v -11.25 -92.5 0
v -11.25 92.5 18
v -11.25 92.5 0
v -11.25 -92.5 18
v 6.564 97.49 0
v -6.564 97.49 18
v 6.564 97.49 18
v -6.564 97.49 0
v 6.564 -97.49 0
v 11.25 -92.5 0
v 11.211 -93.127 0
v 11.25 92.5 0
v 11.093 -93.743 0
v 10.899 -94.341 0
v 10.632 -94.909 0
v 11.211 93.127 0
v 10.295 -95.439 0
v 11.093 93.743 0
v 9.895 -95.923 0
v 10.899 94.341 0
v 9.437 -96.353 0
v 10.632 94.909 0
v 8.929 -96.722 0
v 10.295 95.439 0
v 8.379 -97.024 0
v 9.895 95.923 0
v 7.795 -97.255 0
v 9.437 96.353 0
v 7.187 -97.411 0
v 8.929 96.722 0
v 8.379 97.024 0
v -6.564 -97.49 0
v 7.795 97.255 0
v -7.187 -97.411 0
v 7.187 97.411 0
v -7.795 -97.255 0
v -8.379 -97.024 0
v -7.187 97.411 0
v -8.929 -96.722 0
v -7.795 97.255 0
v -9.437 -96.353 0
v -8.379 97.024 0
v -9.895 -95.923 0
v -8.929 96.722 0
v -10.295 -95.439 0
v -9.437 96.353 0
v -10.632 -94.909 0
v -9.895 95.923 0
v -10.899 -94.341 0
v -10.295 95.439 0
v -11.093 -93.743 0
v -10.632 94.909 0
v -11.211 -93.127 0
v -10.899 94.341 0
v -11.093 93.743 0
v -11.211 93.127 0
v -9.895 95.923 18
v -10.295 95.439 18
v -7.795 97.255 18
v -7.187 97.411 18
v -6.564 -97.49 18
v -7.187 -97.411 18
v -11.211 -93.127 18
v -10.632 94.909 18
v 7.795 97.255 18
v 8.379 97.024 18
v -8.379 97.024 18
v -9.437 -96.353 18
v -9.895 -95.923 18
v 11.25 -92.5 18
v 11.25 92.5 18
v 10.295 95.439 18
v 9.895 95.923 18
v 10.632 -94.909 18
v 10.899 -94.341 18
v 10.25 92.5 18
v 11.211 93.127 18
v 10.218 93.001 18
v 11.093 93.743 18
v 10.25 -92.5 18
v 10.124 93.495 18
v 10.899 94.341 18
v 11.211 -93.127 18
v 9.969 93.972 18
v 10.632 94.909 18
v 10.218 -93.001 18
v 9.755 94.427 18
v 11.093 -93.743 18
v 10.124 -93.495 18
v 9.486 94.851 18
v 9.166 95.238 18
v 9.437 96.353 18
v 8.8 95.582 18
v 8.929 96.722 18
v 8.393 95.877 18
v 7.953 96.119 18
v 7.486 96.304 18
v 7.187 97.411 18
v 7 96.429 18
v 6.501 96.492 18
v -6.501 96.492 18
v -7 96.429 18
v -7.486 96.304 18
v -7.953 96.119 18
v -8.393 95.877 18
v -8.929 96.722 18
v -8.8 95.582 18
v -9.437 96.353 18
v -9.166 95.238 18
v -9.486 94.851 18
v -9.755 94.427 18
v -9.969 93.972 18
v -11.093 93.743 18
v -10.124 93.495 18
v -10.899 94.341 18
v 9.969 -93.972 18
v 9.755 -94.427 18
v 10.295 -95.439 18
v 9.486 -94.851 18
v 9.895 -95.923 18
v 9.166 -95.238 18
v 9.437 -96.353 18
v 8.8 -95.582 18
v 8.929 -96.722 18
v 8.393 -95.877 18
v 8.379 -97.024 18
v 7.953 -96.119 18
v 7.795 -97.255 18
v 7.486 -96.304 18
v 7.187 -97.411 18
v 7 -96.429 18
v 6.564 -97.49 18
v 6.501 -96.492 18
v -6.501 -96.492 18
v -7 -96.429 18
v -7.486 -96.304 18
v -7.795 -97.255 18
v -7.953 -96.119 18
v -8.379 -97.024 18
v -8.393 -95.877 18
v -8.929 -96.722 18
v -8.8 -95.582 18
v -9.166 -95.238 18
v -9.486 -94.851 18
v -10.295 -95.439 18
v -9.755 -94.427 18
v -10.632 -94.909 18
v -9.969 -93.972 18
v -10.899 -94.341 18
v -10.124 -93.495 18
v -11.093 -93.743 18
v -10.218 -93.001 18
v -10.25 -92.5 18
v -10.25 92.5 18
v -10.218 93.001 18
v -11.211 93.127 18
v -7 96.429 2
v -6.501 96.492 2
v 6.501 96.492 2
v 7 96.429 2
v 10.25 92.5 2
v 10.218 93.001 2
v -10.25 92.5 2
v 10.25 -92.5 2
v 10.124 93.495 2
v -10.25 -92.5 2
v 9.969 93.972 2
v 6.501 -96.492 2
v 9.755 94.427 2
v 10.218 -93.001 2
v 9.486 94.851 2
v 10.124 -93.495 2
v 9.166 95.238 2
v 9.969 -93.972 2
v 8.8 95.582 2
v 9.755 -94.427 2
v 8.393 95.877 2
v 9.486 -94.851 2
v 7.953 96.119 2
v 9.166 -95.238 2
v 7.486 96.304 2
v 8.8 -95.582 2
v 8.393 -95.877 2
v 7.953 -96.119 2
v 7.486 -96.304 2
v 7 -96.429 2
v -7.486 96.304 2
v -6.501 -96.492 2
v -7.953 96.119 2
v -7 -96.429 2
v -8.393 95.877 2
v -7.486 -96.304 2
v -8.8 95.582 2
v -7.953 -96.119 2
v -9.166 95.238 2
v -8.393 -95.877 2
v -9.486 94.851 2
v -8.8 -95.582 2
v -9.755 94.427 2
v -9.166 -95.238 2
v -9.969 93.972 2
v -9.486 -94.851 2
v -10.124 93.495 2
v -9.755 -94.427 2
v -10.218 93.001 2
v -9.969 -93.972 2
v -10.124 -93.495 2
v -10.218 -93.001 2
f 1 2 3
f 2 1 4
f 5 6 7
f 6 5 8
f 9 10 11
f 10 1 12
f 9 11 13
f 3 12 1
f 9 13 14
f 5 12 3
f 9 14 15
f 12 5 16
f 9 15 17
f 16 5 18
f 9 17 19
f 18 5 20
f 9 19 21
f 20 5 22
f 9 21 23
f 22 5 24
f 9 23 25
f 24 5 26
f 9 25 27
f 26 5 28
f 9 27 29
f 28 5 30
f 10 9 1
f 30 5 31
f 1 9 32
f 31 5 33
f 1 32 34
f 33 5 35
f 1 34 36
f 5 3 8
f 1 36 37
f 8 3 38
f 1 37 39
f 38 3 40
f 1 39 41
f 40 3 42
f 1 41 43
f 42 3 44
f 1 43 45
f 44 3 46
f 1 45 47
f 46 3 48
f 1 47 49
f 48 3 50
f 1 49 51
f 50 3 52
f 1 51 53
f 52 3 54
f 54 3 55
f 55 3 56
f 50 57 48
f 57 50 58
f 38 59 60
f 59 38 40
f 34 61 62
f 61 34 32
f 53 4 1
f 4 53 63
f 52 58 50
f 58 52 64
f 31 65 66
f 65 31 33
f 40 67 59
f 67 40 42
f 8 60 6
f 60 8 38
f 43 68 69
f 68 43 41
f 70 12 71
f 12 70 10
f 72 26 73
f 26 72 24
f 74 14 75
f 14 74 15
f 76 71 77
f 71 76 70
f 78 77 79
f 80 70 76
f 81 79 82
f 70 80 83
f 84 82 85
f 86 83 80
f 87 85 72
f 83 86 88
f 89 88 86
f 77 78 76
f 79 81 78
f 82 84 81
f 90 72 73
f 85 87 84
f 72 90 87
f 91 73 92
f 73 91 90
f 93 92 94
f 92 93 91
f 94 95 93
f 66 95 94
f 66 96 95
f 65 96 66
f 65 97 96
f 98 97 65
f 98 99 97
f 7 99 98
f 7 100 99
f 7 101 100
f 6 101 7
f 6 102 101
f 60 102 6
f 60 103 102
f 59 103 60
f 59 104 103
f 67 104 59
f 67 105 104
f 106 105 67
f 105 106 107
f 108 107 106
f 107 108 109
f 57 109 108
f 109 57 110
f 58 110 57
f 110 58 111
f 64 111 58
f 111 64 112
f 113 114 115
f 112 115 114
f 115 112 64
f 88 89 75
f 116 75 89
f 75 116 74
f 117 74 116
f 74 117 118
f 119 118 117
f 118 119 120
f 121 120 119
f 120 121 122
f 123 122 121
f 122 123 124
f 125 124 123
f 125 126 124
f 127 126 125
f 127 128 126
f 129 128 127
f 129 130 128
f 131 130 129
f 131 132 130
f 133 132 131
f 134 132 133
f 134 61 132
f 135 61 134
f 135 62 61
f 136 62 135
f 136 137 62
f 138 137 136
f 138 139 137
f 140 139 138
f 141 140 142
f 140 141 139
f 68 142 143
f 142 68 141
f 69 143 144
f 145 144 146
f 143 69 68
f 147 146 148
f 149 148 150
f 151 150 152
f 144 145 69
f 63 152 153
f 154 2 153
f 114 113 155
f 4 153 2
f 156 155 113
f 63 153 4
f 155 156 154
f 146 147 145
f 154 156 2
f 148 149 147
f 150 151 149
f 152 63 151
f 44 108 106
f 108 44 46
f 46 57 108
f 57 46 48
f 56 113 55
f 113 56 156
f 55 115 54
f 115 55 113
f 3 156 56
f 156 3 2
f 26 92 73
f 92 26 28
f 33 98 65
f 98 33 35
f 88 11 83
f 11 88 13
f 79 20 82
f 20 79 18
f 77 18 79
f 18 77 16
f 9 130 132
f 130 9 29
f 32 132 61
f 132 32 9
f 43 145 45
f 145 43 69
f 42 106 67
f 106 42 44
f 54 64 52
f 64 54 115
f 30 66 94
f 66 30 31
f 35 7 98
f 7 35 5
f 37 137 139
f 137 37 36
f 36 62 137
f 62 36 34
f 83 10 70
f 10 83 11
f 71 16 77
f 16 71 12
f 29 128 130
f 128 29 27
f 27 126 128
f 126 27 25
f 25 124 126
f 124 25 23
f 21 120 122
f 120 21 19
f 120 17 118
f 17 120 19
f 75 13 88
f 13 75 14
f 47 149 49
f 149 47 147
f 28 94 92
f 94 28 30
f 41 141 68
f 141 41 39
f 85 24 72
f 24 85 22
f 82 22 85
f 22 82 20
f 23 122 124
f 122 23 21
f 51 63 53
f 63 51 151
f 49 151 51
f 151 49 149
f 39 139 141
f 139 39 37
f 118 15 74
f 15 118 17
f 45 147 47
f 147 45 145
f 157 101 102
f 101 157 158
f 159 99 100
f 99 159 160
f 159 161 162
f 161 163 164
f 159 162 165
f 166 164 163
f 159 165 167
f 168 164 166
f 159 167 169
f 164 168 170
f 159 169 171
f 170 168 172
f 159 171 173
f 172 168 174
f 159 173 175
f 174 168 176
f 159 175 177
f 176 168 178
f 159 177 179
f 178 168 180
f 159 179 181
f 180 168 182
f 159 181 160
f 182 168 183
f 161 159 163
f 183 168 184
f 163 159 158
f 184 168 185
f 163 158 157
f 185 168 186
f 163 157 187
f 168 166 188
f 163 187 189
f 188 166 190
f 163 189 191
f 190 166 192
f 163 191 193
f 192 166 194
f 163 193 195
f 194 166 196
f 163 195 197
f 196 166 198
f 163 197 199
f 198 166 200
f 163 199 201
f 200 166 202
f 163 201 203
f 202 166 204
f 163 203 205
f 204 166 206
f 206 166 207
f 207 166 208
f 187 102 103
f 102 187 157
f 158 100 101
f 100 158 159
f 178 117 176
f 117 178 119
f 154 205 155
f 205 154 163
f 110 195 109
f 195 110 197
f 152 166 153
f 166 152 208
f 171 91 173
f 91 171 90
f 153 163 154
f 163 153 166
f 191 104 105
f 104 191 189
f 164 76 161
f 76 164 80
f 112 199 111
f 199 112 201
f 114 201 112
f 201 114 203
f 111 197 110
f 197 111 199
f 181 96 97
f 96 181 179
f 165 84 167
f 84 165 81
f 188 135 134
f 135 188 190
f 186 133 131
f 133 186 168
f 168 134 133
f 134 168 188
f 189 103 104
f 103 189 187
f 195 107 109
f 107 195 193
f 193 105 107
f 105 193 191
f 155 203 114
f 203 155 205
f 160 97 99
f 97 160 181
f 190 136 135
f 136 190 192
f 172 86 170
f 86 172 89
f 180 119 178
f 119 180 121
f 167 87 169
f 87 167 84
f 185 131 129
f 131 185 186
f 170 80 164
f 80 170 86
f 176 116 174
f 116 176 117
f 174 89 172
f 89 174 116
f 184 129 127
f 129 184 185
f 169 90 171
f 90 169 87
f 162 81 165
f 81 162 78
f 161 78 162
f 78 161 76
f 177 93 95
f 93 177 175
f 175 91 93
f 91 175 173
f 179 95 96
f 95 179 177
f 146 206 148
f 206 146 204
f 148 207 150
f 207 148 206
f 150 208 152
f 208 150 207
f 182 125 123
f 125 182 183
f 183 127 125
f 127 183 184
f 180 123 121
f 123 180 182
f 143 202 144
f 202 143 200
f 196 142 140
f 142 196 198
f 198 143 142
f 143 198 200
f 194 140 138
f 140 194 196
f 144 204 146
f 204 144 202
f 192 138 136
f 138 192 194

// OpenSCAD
$fn = 50;


difference() {
	union() {
		hull() {
			translate(v = [-6.2500000000, 92.5000000000, 0]) {
				cylinder(h = 18, r = 5);
			}
			translate(v = [6.2500000000, 92.5000000000, 0]) {
				cylinder(h = 18, r = 5);
			}
			translate(v = [-6.2500000000, -92.5000000000, 0]) {
				cylinder(h = 18, r = 5);
			}
			translate(v = [6.2500000000, -92.5000000000, 0]) {
				cylinder(h = 18, r = 5);
			}
		}
	}
	union() {
		translate(v = [0, 0, 2]) {
			hull() {
				translate(v = [-6.2500000000, 92.5000000000, 0]) {
					cylinder(h = 16, r = 4);
				}
				translate(v = [6.2500000000, 92.5000000000, 0]) {
					cylinder(h = 16, r = 4);
				}
				translate(v = [-6.2500000000, -92.5000000000, 0]) {
					cylinder(h = 16, r = 4);
				}
				translate(v = [6.2500000000, -92.5000000000, 0]) {
					cylinder(h = 16, r = 4);
				}
			}
		}
	}
}
